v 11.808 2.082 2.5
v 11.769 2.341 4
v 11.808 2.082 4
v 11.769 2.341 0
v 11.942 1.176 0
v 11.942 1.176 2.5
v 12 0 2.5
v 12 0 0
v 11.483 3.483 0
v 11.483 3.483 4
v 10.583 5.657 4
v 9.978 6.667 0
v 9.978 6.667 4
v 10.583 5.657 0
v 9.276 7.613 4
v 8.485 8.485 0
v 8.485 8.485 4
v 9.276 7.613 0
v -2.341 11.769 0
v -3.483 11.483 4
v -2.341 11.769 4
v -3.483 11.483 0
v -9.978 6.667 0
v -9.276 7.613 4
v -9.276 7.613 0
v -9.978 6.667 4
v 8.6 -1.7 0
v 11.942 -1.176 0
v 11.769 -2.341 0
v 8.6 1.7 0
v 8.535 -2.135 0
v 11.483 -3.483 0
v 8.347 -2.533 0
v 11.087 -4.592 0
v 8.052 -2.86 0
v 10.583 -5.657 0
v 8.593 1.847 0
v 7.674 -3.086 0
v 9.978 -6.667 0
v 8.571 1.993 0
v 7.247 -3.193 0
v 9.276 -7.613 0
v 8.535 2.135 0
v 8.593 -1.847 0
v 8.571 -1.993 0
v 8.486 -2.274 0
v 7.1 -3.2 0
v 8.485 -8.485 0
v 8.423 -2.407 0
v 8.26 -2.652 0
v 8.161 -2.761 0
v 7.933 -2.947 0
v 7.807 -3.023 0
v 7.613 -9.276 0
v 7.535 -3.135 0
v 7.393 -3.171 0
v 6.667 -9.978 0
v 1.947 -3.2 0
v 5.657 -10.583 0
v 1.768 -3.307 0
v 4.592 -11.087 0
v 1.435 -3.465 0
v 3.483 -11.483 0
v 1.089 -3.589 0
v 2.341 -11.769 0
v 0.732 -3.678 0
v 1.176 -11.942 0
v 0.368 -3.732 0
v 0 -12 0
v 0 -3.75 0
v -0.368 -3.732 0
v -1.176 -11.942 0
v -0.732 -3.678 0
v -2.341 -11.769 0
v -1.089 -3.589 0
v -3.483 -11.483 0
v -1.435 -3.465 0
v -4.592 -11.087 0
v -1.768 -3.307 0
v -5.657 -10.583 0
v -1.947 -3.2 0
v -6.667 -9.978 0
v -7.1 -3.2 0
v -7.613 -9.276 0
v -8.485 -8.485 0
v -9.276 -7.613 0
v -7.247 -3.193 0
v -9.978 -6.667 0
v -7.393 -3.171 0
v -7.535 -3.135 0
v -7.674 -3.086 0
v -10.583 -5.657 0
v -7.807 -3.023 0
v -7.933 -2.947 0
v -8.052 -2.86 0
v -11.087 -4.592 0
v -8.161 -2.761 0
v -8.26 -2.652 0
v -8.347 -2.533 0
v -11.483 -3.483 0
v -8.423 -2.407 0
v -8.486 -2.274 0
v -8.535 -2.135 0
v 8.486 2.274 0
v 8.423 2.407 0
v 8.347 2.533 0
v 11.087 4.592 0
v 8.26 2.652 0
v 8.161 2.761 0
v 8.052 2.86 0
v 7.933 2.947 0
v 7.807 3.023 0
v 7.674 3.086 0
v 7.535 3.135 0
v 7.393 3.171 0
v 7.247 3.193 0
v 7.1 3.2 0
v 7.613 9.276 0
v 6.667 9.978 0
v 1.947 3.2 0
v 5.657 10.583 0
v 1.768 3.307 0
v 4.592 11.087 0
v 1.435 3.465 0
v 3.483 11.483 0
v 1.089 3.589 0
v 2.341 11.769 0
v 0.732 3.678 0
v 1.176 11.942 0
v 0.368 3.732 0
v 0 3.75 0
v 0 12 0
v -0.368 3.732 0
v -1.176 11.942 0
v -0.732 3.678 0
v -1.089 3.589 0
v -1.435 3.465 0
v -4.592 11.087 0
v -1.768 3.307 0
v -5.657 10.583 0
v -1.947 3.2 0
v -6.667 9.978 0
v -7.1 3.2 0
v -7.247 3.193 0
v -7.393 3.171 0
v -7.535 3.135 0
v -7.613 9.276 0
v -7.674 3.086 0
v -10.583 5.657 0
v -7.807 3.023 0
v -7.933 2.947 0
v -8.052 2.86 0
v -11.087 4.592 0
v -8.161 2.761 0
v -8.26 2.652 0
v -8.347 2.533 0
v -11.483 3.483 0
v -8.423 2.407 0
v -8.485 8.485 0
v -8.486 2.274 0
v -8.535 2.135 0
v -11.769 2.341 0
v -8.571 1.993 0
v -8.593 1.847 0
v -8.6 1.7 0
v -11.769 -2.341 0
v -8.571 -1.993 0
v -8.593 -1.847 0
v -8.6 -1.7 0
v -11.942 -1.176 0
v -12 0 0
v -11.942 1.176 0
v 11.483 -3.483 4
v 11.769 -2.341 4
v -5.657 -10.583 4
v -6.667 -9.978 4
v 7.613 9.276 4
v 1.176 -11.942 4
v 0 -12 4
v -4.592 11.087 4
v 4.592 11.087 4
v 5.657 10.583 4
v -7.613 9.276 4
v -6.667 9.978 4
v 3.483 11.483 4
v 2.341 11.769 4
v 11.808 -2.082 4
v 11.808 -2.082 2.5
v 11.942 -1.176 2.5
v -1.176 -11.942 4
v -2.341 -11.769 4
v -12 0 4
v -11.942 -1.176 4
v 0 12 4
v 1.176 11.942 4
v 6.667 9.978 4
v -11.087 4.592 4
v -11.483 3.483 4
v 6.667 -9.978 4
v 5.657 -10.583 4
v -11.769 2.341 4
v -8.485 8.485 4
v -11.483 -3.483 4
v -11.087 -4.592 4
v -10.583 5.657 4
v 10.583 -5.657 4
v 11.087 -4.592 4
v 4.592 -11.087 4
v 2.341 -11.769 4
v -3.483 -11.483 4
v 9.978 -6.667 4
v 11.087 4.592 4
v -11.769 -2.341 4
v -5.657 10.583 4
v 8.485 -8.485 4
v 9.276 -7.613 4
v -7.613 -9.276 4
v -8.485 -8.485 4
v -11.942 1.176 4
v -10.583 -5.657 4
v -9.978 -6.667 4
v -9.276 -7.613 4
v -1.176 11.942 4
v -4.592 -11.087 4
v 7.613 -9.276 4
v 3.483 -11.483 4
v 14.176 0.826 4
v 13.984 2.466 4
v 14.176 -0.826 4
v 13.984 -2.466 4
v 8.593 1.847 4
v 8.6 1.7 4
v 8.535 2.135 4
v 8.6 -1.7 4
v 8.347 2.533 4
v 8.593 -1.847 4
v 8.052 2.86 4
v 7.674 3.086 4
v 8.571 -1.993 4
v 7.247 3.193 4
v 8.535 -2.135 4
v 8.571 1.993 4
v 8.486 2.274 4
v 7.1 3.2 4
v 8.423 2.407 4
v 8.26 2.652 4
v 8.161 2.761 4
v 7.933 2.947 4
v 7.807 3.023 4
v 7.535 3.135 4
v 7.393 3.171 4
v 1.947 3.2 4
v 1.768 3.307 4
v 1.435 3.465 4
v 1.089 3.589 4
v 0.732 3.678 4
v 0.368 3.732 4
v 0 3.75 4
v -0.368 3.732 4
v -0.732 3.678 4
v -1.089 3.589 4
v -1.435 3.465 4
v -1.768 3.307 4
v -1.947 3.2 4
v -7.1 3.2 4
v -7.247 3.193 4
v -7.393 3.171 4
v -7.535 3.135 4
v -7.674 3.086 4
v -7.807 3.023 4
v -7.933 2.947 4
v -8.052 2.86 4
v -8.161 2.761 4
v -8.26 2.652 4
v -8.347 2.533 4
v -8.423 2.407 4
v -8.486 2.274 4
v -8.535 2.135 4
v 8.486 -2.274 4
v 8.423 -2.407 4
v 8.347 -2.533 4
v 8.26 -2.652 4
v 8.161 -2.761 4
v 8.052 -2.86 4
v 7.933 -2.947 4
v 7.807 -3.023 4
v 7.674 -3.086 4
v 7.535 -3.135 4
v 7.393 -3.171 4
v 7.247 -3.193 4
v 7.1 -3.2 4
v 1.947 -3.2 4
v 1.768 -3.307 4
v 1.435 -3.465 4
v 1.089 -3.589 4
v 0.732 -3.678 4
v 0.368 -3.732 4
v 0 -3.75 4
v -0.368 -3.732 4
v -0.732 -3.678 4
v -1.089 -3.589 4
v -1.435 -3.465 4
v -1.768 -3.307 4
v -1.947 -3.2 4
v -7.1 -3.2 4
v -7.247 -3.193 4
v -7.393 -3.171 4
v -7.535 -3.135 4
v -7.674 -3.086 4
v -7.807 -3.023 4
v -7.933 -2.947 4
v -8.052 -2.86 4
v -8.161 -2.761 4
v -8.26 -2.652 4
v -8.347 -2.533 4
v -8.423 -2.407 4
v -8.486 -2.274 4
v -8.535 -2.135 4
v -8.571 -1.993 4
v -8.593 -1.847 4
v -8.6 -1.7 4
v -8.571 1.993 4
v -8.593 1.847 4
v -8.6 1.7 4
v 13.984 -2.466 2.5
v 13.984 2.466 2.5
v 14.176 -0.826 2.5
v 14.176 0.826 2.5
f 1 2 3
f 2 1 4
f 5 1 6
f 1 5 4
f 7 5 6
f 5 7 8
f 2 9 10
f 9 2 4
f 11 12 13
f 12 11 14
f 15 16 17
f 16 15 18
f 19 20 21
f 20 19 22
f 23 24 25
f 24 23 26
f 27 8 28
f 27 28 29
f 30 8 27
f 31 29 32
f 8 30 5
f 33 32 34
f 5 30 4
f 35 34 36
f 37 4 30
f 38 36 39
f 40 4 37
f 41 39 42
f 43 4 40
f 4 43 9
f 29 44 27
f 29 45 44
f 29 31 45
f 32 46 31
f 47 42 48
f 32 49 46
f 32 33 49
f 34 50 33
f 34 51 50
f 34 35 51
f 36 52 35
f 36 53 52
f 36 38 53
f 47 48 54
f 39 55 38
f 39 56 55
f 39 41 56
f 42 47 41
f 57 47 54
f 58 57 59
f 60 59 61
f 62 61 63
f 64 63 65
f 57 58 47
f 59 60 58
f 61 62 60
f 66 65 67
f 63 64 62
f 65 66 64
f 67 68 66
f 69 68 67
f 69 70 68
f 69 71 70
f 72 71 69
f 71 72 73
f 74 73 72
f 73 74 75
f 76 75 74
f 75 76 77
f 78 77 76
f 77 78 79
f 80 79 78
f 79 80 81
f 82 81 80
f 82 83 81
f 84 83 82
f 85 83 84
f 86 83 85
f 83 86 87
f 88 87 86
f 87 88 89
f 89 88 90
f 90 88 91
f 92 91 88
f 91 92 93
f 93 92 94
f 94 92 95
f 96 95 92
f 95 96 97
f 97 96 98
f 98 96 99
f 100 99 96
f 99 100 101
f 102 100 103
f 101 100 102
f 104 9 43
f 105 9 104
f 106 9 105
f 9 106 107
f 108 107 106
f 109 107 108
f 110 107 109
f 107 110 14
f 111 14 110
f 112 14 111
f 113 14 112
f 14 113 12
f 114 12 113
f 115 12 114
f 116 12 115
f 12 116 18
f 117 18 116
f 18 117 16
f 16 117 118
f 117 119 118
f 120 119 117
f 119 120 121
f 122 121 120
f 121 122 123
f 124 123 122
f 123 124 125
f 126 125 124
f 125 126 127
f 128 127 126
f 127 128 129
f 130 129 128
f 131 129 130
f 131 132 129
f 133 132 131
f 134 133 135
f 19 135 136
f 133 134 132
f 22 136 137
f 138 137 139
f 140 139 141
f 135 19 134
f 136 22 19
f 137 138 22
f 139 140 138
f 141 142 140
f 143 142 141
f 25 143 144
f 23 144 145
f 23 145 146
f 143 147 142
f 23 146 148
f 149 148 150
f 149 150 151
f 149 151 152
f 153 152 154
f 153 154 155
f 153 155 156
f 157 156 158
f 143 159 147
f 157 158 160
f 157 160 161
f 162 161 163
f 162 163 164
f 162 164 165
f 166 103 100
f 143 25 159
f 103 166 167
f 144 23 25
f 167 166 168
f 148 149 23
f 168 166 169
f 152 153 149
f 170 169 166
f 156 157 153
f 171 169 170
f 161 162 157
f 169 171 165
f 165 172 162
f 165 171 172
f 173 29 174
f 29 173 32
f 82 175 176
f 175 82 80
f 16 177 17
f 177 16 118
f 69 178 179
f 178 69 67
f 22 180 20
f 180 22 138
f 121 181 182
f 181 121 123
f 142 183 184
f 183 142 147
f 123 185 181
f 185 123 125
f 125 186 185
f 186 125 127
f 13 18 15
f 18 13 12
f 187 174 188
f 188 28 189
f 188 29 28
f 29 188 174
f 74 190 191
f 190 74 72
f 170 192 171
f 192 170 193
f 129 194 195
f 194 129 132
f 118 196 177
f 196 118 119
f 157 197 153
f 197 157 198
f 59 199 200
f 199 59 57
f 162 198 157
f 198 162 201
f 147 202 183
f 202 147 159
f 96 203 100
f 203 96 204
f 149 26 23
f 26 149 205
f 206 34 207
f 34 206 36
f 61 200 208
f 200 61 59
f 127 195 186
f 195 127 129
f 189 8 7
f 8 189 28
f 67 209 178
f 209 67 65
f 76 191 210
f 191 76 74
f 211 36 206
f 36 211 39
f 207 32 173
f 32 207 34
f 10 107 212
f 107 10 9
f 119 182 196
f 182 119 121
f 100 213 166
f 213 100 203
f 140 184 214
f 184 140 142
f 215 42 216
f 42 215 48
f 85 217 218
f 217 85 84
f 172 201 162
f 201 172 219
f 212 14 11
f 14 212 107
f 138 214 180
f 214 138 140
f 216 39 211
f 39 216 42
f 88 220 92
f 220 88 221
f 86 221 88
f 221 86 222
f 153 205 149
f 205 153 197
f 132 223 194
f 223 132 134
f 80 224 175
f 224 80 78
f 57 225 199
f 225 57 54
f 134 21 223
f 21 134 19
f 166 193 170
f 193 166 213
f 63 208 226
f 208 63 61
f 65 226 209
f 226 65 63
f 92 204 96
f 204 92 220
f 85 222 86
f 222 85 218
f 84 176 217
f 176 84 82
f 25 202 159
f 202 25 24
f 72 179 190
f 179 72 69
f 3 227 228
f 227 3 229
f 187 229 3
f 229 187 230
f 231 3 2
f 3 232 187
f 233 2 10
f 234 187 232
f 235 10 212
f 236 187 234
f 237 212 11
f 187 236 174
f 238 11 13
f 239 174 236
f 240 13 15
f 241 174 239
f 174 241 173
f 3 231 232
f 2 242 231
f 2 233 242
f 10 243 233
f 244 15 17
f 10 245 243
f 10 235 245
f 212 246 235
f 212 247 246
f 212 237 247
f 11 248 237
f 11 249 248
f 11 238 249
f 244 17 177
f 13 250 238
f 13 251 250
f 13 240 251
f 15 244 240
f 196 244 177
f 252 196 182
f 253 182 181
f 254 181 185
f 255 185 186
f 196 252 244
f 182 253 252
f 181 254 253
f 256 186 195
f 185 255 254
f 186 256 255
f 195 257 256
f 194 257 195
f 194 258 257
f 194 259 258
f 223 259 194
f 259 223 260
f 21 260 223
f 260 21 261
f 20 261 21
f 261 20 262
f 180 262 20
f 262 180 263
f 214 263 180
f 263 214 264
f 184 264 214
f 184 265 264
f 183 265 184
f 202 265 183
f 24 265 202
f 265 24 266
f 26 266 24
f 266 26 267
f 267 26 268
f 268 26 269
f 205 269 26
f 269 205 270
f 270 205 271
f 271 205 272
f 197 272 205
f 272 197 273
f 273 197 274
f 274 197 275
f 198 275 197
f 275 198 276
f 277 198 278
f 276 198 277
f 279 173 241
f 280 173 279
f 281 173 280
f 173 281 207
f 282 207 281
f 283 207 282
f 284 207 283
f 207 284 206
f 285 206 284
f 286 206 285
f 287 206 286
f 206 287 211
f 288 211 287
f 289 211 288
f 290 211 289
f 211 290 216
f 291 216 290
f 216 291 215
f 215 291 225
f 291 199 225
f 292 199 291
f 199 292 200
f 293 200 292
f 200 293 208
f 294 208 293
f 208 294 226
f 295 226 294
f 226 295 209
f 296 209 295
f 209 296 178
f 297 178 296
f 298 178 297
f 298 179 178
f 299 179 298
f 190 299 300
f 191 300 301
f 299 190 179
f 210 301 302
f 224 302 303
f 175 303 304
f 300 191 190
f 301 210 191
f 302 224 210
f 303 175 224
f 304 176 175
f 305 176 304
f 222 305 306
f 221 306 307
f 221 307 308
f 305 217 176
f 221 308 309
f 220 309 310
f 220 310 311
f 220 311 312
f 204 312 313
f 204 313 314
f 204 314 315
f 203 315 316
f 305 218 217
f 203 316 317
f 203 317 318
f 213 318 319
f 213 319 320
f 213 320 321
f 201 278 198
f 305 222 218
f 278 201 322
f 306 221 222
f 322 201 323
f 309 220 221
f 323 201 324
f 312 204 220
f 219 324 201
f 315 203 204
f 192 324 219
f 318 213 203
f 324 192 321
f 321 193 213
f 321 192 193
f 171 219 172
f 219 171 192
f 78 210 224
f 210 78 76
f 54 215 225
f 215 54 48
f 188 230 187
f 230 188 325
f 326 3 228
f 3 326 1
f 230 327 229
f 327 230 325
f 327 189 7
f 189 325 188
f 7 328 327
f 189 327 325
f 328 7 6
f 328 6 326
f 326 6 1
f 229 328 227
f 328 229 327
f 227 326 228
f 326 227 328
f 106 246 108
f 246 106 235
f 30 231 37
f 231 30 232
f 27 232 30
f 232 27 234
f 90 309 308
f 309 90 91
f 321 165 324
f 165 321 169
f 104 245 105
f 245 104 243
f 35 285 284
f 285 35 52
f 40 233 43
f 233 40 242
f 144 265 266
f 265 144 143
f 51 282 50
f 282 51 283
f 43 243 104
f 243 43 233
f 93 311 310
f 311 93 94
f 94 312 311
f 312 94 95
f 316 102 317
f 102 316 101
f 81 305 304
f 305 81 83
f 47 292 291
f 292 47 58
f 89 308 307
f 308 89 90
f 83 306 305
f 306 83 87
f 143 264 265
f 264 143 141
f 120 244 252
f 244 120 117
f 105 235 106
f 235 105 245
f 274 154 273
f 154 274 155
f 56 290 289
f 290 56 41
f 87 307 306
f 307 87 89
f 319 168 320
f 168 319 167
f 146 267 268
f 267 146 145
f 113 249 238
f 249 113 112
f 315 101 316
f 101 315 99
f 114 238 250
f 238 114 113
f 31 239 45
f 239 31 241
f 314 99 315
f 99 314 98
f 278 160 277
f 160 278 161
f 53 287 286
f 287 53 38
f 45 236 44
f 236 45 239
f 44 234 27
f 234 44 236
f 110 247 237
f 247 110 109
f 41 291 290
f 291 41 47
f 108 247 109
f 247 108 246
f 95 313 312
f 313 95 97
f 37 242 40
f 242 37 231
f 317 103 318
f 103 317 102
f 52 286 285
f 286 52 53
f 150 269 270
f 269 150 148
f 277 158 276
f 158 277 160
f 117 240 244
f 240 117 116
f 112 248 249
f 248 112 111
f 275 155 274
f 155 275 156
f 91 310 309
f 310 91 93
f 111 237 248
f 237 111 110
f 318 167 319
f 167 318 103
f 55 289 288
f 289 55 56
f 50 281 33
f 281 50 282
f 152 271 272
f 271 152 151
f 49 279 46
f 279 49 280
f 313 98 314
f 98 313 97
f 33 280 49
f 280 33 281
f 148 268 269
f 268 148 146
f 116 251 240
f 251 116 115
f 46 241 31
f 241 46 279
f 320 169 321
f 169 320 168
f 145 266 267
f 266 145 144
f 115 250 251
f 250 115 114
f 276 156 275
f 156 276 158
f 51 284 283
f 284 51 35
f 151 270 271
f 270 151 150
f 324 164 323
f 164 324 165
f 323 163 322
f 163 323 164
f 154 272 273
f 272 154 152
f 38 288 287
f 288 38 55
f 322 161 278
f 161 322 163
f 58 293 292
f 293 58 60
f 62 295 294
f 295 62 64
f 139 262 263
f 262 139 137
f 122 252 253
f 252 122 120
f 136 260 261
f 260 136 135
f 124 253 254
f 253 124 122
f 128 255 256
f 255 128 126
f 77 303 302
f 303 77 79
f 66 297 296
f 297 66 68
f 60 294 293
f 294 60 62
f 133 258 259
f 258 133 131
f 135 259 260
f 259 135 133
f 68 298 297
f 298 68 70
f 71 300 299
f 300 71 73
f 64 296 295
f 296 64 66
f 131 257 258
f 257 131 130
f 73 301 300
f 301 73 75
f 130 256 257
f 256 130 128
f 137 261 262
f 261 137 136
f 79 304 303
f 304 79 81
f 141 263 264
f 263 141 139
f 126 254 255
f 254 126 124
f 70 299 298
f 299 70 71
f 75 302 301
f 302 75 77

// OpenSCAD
//==================================================
// CRYSTAL FOOT — v2, now standalone (no more fused shaft)
//
// FIX: the old combined foot+transition+shaft was one rigid piece.
// The transition cone (up to 24mm wide, tapering to 8mm) had to
// physically pass through the shell's 9mm shaft passage for the top
// lugs (then on the foot) to ever reach the collar -- impossible for
// a solid cone that wide. That's why the lug never hit the notch.
//
// Fix: foot and shaft are now separate parts (see crystal_shaft_v1.
// scad). The bare shaft -- always thin, no wide taper -- slides
// through the shell easily and locks via its own lugs. THIS foot
// then press-fits onto the shaft's exposed bottom end afterward,
// via the socket at the top.
//
// Mechanism (bottom lug, disc lock) unchanged from before:
//   1. Foot inserts straight down through the ring's hole.
//   2. Rotates 90° (single asymmetric lug).
//   3. Lug seats under the disc's retaining lip.
//   4. At the 90° end-stop, the pad connector aligns with the disc's
//      fixed pin connector -- mechanical lock and electrical contact
//      complete at the same motion.
//
// ONE lug, not two symmetric ones — deliberate. A symmetric pair
// would let the foot lock at either of two rotations 180° apart,
// and since the pad row isn't symmetric, the 180°-flipped case would
// scramble GND/5V/DATA. One lug = one valid orientation.
//==================================================

$fn = 64;

/* [Foot] */
foot_diameter   = 24;   // stays 24mm -- MATCH engineering_disc_v4.
                         // The 25mm connector presses into the disc
                         // rather than needing the foot to clear its
                         // ears, so the foot never had to grow.
foot_length     = 4;

/* [Bayonet lug — disc lock, unchanged] */
lug_width_deg   = 20;
lug_thickness   = 2.2;     // was 1.6mm. The disc's collar bore was
                            // widened to 26mm for connector room and
                            // lock wiggle; without thickening the lug
                            // to match, engagement would have dropped
                            // from 1.2mm to 0.6mm. MATCH disc's
                            // bayonet_lug_thickness.
lug_height      = 1.5;
lug_z           = 2.5;

/* [Pad connector pocket — all measured, unchanged] */
pad_length    = 17;
pad_height    = 4.5;
pad_width     = 6.2;
pad_clearance = 0.1;
pad_corner_r  = 1.5;

/* [Peg relief] REMOVED. The disc's alignment pegs are gone (ears now
   seat flush in their own recess on the disc), so there is nothing
   left to clear. The arc-slot version added previously is therefore
   obsolete -- it existed only to let the foot rotate past those
   pegs. */

module rounded_rect_prism(l, w, h, r)
{
    hull()
    {
        for (x = [-l/2 + r, l/2 - r])
            for (y = [-w/2 + r, w/2 - r])
                translate([x, y, 0])
                    cylinder(h = h, r = r);
    }
}

/* [Wire channel through the foot, unchanged] */
wire_channel_dia = 5;
chamfer_height = 1.5;
chamfer_extra  = 2;

module wire_channel_lower()
{
    // straight bore + funnel chamfer down into the pocket, same as
    // before, but now it needs to reach UP to meet the socket instead
    // of a theoretical "future shaft"
    main_h = foot_length - pad_height + 1 - chamfer_height;
    union()
    {
        cylinder(h = main_h, d = wire_channel_dia);
        translate([0, 0, main_h])
            cylinder(h = chamfer_height,
                      d1 = wire_channel_dia,
                      d2 = wire_channel_dia + chamfer_extra);
    }
}

module foot_shaft()
{
    cylinder(h = foot_length, d = foot_diameter);
}

module bayonet_lug()
{
    rotate([0, 0, -lug_width_deg/2])
        rotate_extrude(angle = lug_width_deg)
            translate([foot_diameter/2 - 0.5, lug_z])
                square([lug_thickness + 0.5, lug_height]);
}

module pad_pocket()
{
    translate([0, 0, foot_length - pad_height])
        rounded_rect_prism(pad_length + pad_clearance*2,
                            pad_width + pad_clearance*2,
                            pad_height + 1,
                            pad_corner_r);
}

/* [Press-fit socket — WIDENED. The old 6mm socket/peg had a 5mm wire
   channel bored through its own center, leaving only ~0.4mm of wall
   -- too thin to print reliably, and left no room for the wire
   bundle (already threaded through this channel) to coexist with a
   peg trying to occupy the same space. That's why there wasn't
   enough room to actually mount the shaft.
   MATCH crystal_shaft_v1.scad's peg_diameter=7.5, peg_length=7.
*/
socket_dia    = 7.5;   // was 6
socket_depth  = 7.5;

module press_fit_socket()
{
    translate([0, 0, -0.5])
        cylinder(h = socket_depth, d = socket_dia);
}

module foot()
{
    difference()
    {
        union()
        {
            foot_shaft();
            bayonet_lug();
        }
        pad_pocket();
        wire_channel_lower();
        press_fit_socket();
    }
}

foot();
